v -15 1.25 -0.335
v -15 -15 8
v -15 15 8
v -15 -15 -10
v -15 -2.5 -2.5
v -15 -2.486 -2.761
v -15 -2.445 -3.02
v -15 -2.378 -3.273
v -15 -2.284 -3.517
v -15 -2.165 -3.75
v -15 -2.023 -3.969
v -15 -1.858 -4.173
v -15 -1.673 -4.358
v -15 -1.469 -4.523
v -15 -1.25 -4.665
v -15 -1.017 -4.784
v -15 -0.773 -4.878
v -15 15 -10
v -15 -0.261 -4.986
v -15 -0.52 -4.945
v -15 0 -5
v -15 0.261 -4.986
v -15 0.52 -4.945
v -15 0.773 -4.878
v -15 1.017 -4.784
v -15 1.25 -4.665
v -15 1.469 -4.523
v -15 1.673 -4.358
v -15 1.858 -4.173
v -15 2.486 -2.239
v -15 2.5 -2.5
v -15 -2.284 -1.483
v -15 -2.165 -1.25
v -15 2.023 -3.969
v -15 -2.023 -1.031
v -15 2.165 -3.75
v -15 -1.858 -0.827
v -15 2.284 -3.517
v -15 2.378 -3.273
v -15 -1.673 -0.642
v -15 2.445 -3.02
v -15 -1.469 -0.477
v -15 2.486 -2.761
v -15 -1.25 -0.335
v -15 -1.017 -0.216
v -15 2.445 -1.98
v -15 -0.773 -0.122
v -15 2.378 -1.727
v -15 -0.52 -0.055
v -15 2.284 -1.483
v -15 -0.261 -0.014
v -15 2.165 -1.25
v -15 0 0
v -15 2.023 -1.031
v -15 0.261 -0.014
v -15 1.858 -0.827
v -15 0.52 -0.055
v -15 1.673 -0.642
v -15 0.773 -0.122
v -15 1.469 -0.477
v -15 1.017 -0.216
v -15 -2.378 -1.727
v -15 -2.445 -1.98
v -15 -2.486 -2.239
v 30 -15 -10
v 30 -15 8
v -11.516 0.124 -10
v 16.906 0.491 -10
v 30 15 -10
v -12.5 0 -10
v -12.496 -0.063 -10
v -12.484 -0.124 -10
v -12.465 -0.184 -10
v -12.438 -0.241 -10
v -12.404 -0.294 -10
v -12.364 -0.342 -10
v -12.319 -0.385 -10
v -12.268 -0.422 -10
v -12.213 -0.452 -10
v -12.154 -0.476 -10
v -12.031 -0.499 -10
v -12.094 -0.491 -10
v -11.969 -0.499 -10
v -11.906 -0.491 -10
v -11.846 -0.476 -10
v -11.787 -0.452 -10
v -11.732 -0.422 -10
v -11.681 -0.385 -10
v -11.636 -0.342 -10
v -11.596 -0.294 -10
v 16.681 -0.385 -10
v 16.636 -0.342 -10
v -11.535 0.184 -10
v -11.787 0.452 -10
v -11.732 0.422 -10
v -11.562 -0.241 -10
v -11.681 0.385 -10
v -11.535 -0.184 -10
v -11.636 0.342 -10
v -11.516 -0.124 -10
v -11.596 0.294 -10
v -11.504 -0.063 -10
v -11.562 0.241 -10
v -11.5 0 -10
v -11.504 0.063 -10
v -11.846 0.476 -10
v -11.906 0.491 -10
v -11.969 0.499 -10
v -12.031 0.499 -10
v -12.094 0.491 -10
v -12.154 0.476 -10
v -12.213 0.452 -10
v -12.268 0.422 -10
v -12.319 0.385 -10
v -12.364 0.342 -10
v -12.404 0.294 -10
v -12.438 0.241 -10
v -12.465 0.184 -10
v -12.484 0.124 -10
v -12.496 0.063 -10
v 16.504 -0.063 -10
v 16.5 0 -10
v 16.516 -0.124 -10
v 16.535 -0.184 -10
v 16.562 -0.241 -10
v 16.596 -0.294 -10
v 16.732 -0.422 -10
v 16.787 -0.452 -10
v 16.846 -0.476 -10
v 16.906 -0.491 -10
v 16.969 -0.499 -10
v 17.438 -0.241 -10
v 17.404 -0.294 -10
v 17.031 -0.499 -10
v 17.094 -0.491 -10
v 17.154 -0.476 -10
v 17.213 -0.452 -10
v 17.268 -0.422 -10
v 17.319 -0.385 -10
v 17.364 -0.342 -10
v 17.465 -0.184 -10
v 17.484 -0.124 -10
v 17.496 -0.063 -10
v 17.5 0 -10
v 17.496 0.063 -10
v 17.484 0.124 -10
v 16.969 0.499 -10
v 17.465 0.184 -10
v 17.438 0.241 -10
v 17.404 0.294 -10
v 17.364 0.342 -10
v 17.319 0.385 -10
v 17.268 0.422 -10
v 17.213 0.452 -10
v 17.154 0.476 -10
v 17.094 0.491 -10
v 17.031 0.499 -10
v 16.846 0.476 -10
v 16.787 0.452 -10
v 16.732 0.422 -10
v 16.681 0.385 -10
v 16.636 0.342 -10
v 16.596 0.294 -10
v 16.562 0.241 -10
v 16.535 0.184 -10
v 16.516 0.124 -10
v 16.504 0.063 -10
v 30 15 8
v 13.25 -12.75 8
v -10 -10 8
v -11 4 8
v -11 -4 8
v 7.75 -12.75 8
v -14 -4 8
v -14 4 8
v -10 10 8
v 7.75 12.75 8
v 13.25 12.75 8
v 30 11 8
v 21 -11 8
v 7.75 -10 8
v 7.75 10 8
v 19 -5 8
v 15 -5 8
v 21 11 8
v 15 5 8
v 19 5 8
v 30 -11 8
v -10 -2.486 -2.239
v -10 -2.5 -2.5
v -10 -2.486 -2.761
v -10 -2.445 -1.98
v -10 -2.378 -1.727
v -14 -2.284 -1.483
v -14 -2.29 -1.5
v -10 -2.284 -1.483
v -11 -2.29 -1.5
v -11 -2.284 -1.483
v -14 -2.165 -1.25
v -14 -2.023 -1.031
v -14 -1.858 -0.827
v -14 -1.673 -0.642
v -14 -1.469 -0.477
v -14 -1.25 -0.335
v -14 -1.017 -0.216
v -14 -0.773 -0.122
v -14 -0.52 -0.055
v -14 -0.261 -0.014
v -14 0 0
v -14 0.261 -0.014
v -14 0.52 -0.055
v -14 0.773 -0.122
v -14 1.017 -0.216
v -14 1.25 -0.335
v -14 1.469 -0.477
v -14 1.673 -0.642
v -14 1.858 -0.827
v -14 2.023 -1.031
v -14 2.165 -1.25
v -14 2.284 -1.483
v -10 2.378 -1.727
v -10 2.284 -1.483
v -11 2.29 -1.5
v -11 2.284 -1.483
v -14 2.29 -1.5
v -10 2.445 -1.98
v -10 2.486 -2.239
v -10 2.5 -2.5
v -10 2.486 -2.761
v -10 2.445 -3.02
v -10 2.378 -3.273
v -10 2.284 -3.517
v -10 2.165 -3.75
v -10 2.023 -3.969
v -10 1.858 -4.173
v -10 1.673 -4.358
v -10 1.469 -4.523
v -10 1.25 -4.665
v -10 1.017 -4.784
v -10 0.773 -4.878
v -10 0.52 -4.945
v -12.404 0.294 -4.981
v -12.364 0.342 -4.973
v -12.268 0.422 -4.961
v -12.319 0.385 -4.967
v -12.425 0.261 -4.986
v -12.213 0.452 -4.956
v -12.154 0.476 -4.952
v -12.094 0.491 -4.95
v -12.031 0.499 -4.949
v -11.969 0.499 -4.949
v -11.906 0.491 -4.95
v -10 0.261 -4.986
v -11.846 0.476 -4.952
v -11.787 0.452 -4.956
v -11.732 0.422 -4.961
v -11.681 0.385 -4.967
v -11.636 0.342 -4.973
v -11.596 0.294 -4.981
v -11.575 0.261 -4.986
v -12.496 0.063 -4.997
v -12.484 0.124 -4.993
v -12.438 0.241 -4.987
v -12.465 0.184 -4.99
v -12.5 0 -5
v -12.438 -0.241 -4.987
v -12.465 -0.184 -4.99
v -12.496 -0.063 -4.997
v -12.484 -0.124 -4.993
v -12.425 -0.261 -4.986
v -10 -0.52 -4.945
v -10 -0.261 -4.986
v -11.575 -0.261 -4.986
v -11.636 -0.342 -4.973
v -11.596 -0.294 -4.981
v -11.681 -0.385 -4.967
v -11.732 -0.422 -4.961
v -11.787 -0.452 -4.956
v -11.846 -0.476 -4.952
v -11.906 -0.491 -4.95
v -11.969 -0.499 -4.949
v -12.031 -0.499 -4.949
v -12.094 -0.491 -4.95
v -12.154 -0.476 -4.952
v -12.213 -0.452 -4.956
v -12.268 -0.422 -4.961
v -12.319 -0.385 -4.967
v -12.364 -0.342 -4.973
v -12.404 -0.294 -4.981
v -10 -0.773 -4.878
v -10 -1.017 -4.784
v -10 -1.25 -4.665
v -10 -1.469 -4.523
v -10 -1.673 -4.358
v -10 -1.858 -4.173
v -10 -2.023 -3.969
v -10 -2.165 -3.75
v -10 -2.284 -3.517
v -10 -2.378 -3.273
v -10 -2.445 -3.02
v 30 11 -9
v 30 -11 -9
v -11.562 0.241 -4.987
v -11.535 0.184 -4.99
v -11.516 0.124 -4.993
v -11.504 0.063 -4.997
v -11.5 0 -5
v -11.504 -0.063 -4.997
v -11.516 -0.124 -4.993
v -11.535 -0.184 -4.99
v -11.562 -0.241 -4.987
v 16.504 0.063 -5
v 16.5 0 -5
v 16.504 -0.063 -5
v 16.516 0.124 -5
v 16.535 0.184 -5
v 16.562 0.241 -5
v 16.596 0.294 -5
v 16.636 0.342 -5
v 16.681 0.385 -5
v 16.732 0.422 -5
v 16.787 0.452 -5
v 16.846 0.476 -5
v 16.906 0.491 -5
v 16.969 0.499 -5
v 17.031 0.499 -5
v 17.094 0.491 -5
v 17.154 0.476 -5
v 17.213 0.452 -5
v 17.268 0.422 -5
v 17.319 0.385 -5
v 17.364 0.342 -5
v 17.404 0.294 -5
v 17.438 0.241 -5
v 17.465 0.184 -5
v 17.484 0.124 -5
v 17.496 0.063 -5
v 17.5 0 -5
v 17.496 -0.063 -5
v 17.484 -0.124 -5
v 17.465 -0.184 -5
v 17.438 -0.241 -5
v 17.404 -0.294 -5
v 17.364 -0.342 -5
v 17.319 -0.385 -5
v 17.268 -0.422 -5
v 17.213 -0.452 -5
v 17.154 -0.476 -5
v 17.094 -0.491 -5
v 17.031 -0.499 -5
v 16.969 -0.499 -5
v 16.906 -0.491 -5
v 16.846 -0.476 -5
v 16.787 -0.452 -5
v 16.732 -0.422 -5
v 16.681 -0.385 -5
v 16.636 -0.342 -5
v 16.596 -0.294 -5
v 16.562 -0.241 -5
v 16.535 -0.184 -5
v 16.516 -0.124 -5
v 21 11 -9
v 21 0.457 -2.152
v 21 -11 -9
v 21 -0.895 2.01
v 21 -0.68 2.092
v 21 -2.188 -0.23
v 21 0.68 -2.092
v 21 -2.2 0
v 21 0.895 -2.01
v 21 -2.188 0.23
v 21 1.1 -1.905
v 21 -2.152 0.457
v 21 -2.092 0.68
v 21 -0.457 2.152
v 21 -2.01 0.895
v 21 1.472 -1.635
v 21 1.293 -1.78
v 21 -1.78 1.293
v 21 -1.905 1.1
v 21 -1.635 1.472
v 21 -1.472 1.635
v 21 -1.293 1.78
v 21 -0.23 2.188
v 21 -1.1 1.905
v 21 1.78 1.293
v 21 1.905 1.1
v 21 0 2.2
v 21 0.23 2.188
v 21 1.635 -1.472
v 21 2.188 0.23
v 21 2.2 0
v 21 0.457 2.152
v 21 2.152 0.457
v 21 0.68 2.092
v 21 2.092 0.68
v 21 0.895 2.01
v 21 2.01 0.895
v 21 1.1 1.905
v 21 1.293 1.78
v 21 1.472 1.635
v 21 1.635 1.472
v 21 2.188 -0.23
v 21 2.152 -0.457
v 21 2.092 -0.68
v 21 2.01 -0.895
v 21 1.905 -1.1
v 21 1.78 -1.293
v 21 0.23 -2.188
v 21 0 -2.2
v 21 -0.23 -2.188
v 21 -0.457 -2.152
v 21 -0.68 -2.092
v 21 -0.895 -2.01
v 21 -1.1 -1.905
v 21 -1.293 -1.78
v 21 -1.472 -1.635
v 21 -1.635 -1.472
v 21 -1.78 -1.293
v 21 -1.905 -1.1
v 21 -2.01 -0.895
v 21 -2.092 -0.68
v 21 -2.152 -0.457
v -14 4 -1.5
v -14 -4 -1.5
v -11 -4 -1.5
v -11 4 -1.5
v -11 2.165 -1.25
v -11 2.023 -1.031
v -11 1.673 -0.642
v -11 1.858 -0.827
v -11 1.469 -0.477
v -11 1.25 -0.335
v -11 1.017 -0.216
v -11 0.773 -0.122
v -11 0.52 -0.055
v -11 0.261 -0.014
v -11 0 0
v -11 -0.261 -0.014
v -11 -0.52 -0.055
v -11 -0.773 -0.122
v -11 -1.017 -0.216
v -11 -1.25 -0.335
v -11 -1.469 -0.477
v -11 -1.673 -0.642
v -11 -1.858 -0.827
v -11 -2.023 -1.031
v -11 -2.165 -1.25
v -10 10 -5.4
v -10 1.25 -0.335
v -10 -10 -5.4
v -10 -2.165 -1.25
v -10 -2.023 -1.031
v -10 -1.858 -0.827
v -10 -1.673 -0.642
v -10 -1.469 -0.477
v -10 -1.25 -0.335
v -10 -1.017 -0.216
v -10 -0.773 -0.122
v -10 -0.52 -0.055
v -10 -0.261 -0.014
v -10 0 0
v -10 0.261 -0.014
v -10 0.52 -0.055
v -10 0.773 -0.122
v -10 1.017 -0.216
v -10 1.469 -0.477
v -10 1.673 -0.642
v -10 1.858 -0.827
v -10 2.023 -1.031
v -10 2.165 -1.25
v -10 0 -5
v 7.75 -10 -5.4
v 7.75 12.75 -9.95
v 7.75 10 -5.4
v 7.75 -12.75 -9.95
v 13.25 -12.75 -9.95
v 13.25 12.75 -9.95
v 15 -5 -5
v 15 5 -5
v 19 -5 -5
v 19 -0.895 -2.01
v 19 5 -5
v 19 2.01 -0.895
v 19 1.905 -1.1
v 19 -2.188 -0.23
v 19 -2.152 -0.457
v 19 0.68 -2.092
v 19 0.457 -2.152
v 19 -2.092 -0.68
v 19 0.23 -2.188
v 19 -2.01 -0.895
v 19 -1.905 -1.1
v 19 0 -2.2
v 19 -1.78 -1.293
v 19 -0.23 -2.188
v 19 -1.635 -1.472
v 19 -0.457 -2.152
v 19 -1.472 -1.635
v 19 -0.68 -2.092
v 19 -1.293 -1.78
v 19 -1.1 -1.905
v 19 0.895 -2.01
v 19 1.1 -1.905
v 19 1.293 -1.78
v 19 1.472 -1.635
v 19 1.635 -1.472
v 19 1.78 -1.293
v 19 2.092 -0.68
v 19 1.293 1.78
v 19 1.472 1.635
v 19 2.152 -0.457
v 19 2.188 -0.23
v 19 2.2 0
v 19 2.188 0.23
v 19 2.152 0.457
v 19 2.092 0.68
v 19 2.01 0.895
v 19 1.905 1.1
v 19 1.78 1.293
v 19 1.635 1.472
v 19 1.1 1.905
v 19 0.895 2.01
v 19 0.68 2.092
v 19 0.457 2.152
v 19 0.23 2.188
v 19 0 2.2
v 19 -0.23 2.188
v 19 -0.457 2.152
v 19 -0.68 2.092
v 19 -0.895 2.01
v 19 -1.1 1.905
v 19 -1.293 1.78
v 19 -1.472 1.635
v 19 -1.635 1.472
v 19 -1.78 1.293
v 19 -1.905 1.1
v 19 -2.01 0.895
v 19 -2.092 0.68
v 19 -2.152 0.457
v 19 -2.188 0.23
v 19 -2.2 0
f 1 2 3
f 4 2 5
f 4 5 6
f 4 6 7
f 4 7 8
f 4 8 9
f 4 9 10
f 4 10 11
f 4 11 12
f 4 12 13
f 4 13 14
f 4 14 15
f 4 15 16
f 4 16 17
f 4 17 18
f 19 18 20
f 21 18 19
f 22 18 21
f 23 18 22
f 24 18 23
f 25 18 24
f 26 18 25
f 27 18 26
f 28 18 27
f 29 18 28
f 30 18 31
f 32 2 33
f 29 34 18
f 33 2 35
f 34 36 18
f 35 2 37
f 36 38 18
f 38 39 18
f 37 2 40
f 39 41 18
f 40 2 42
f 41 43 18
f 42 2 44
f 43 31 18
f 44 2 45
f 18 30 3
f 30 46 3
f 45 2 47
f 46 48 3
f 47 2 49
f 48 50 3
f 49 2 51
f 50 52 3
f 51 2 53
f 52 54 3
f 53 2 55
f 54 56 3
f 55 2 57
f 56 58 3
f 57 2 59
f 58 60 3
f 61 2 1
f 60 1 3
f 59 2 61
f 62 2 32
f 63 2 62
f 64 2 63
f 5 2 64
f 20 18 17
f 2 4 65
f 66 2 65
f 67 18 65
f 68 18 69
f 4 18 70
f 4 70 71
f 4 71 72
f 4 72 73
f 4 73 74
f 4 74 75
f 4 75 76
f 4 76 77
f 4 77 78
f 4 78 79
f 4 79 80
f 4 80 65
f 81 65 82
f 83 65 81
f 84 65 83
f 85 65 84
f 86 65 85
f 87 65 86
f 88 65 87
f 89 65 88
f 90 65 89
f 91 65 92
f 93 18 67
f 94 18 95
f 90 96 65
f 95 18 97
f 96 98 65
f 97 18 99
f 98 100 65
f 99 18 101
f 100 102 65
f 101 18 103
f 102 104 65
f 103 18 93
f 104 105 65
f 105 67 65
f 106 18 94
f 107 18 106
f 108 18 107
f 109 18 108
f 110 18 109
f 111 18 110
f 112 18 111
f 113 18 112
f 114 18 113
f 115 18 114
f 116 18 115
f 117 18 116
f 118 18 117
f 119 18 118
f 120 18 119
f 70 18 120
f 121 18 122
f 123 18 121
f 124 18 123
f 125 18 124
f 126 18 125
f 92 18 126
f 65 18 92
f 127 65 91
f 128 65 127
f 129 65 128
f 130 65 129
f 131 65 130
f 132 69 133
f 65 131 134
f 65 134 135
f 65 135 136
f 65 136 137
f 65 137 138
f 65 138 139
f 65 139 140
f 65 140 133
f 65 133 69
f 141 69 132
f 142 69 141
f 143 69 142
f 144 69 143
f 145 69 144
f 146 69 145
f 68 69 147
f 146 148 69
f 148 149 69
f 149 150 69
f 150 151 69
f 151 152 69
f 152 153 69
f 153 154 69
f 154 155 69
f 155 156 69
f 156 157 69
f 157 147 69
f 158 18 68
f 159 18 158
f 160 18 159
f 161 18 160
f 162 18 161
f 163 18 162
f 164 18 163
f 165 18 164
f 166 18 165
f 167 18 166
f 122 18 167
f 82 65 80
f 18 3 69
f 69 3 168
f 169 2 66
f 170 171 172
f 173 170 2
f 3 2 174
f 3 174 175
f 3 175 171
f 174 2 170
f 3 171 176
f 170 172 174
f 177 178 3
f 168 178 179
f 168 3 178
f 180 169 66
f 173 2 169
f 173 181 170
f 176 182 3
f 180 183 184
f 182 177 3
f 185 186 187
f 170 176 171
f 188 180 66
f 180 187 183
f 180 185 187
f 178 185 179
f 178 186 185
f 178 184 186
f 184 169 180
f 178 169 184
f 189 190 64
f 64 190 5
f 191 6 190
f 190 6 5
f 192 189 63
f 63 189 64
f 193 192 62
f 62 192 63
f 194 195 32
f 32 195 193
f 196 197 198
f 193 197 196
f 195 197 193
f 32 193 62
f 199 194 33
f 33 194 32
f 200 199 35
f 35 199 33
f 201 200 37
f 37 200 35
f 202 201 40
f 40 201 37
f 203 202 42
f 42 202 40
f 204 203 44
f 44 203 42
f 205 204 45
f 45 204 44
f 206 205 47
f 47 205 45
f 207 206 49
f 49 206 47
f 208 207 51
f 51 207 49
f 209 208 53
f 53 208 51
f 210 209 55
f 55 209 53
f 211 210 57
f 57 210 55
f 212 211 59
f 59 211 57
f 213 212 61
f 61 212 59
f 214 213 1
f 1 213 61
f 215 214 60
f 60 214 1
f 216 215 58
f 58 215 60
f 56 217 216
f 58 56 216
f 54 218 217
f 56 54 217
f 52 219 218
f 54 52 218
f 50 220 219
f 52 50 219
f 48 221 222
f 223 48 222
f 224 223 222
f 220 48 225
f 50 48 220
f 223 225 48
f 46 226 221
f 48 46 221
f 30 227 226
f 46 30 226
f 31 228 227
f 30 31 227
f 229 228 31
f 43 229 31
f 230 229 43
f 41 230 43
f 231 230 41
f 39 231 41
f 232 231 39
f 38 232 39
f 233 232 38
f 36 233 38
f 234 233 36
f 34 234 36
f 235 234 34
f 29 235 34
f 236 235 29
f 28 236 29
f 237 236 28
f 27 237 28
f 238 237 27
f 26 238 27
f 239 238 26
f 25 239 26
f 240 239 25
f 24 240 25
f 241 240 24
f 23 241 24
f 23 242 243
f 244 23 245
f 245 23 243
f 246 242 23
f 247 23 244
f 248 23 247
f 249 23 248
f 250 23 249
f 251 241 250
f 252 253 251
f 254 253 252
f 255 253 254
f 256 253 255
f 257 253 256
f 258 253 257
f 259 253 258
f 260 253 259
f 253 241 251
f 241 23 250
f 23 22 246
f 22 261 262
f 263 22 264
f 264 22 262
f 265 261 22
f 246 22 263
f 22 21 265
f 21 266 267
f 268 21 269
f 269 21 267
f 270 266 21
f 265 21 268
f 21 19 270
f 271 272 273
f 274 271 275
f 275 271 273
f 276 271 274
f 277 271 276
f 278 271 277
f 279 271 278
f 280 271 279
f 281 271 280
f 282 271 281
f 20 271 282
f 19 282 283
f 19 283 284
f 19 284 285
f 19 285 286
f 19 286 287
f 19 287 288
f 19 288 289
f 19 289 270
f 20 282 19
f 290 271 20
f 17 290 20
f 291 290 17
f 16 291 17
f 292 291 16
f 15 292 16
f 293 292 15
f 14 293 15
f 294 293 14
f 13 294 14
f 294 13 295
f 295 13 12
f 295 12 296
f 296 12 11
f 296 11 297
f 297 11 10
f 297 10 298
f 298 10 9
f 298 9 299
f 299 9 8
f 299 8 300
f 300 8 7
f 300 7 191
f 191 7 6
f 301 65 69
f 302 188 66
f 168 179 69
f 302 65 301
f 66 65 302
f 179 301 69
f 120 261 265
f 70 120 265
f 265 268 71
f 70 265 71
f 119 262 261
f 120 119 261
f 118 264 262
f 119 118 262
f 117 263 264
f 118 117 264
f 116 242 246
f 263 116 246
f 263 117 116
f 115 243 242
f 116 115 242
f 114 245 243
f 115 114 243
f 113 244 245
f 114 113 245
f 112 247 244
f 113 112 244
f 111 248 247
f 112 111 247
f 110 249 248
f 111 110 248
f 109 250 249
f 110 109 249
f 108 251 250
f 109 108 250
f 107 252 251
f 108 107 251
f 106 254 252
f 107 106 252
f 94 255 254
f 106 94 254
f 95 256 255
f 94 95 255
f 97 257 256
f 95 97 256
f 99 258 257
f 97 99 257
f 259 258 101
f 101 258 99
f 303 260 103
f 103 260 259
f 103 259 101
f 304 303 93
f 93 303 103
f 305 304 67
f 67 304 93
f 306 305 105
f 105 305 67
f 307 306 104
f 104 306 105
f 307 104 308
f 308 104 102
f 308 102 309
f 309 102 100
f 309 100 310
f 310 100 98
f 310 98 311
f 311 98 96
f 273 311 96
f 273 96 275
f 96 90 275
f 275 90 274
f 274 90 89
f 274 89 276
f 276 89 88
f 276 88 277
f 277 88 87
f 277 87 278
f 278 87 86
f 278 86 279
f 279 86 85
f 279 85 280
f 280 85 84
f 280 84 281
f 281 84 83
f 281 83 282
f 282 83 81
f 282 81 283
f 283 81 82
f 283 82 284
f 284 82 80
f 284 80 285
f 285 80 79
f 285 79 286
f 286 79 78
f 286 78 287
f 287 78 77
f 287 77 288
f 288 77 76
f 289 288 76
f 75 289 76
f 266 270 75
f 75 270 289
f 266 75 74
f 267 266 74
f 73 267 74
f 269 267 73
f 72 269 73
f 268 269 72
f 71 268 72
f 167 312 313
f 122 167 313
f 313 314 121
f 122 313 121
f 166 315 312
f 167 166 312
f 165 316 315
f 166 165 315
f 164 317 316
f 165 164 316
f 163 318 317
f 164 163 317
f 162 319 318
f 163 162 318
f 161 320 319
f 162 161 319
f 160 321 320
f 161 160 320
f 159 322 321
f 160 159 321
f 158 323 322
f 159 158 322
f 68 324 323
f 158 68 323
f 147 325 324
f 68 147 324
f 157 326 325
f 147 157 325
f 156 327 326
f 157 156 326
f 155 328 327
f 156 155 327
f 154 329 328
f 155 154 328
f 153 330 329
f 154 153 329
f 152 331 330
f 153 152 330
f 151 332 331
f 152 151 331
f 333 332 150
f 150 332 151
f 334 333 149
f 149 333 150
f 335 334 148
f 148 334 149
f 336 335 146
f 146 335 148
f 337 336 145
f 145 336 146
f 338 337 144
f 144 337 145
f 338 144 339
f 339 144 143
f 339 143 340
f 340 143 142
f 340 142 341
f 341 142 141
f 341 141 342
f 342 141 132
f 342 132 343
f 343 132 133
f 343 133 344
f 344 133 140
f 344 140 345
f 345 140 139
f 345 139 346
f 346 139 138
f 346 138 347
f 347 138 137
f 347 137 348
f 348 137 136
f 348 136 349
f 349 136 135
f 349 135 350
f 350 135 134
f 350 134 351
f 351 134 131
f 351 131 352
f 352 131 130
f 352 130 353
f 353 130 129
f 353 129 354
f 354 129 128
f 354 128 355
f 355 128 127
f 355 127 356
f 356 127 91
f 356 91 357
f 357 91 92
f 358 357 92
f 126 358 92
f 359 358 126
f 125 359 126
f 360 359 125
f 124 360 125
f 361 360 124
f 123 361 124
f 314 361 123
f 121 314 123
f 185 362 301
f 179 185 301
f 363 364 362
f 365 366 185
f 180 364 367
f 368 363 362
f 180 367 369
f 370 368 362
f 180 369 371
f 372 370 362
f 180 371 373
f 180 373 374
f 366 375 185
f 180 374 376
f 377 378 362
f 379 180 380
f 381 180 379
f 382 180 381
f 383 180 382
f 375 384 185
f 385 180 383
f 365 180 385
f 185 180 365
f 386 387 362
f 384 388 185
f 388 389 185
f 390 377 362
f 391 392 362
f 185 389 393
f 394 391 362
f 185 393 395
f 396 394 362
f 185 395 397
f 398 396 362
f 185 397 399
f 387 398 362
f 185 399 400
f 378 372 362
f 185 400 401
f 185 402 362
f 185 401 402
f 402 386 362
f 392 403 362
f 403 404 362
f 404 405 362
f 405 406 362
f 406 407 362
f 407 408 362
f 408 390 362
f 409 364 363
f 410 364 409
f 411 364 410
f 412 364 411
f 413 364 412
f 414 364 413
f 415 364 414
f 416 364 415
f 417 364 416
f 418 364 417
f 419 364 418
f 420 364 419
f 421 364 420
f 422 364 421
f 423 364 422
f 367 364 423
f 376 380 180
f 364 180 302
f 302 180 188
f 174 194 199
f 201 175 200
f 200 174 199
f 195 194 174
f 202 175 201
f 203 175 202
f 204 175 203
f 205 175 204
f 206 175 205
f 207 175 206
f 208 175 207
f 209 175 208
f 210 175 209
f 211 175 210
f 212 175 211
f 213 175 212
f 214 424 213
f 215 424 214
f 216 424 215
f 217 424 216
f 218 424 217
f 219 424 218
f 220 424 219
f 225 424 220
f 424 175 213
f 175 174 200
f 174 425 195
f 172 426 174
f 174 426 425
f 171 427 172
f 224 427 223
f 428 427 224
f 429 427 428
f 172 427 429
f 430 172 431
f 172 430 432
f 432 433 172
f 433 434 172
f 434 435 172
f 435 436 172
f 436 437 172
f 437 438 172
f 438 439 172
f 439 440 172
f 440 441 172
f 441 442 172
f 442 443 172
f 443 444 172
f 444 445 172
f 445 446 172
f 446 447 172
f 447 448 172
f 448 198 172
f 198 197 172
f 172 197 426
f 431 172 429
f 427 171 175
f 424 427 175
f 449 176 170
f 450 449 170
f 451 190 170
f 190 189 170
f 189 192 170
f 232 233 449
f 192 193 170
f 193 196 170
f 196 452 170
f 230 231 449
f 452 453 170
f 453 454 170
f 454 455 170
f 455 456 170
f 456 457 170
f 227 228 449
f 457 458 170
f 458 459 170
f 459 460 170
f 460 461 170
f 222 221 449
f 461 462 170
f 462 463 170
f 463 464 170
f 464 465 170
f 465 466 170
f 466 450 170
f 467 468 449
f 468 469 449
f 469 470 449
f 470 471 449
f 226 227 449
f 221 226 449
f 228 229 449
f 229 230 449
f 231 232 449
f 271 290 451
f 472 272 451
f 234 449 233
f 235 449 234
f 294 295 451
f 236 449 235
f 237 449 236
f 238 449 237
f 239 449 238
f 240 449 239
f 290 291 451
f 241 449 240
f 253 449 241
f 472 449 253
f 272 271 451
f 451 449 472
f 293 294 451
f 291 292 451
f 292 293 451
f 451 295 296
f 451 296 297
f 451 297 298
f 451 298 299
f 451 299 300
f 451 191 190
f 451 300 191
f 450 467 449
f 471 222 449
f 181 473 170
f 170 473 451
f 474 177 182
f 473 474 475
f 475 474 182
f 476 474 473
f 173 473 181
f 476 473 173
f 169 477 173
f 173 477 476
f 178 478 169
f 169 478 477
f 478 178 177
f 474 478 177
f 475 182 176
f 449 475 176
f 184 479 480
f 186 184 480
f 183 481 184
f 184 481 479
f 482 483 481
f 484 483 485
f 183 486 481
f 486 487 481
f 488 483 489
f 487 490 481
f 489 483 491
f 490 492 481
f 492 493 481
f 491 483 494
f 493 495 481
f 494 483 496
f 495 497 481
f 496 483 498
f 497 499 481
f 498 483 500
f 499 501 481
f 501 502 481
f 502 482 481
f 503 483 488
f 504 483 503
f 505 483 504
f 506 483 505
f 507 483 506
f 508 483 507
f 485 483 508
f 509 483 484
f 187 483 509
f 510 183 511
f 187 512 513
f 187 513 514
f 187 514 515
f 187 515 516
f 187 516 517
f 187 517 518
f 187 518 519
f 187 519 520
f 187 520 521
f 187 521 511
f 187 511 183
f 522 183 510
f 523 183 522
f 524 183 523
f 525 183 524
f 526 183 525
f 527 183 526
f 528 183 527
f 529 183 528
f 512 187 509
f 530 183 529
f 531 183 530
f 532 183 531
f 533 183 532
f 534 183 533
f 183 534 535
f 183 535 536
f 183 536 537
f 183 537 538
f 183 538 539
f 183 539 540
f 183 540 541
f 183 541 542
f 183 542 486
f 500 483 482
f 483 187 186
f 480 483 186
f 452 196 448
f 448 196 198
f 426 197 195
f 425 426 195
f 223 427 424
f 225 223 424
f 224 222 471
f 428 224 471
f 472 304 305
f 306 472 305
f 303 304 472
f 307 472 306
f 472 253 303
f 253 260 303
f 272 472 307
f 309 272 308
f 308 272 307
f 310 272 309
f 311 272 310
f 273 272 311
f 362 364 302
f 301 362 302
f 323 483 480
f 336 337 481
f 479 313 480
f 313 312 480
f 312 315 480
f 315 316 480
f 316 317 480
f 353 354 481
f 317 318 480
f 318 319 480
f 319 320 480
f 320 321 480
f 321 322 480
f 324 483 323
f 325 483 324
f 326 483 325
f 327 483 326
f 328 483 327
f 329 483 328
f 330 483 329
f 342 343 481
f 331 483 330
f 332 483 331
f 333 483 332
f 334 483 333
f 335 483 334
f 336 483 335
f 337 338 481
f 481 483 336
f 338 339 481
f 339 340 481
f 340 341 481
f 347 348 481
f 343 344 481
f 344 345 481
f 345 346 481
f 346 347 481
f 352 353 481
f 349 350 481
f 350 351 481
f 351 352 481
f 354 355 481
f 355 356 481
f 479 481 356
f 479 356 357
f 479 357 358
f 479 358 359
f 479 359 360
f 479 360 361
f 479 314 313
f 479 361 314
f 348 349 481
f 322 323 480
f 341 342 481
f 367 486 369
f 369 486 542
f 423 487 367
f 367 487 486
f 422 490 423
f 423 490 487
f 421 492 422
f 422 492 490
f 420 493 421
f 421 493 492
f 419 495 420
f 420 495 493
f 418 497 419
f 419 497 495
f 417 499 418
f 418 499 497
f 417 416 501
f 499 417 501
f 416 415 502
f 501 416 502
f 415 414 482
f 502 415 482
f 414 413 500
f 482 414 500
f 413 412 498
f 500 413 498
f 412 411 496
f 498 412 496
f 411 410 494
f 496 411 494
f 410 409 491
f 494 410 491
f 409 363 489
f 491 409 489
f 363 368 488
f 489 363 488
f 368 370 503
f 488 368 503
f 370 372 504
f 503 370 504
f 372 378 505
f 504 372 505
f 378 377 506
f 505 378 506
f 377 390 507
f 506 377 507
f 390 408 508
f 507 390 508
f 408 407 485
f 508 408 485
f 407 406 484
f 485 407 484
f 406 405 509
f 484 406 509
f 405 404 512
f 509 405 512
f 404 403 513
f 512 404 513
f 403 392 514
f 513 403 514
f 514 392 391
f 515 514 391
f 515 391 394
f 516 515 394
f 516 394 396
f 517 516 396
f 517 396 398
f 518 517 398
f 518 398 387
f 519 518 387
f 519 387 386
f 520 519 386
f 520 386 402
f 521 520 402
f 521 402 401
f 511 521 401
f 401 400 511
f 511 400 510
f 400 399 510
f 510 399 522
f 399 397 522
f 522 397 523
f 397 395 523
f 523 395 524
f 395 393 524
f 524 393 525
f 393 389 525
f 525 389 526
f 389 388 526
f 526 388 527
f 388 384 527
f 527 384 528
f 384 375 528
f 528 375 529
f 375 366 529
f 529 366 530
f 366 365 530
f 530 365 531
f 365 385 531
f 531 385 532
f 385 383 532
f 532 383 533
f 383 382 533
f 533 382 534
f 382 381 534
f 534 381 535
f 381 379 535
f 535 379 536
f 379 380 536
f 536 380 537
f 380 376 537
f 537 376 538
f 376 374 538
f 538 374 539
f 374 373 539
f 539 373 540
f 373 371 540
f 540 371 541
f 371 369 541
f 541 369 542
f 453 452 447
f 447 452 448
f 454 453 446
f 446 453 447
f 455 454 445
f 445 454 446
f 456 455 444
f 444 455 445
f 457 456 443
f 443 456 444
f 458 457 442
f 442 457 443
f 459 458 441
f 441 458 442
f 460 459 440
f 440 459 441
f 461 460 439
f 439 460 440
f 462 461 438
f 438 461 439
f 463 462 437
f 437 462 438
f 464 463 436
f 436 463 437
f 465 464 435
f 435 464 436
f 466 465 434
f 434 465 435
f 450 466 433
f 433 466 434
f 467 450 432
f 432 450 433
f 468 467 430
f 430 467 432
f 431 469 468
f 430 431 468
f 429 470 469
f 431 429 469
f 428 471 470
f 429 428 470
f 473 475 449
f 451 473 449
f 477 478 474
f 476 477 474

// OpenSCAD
module ccd() {
	union() {
		difference() {
			//Top Cube
			translate([0,0,-1])
			cube([30,30,18], center=true);
			translate([0,0,2.6])
			//Inner Cube
			cube([20,20,16], center=true);
			translate([10.5,0,4])
			//CCD Tray
			cube([5.5,25.5,27.9], center=true);
			//Lense Shaft
			translate([-12.5,0,6])
			cube([3,8,15], center=true);
			//Lens 
			rotate([0,90,0])
			translate([2.5,0,-12])
			cylinder(h=10, r=2.5,center=true,$fn=60);
			//hole push out
			translate([-12,0,0])
			cylinder(h=20,r=.5,center=true,$fn=50);
		}
		translate([18,0,0])
		difference() {
			translate([0,0,-1])
			cube([6,30,18], center=true);
			translate([-1,0,5])
			//bolt hole
			cube([4,10,20],center=true);
			//Bolt holes
			rotate([0,90,0])
			translate([0,0,2])
			cylinder(r=2.2, h=8, center=true, $fn=60);	
			//Remove HOle
			translate([-1,0,-5])
			cylinder(r=.5, h=18, center=true, $fn=50);
	
		}
		translate([25,0,-9.5])
		cube([10,30,1],center=true);
		translate([25,13,-1])
		cube([10,4,18], center=true);
		translate([25,-13,-1])
		cube([10,4,18], center=true);
	}
}


ccd();
